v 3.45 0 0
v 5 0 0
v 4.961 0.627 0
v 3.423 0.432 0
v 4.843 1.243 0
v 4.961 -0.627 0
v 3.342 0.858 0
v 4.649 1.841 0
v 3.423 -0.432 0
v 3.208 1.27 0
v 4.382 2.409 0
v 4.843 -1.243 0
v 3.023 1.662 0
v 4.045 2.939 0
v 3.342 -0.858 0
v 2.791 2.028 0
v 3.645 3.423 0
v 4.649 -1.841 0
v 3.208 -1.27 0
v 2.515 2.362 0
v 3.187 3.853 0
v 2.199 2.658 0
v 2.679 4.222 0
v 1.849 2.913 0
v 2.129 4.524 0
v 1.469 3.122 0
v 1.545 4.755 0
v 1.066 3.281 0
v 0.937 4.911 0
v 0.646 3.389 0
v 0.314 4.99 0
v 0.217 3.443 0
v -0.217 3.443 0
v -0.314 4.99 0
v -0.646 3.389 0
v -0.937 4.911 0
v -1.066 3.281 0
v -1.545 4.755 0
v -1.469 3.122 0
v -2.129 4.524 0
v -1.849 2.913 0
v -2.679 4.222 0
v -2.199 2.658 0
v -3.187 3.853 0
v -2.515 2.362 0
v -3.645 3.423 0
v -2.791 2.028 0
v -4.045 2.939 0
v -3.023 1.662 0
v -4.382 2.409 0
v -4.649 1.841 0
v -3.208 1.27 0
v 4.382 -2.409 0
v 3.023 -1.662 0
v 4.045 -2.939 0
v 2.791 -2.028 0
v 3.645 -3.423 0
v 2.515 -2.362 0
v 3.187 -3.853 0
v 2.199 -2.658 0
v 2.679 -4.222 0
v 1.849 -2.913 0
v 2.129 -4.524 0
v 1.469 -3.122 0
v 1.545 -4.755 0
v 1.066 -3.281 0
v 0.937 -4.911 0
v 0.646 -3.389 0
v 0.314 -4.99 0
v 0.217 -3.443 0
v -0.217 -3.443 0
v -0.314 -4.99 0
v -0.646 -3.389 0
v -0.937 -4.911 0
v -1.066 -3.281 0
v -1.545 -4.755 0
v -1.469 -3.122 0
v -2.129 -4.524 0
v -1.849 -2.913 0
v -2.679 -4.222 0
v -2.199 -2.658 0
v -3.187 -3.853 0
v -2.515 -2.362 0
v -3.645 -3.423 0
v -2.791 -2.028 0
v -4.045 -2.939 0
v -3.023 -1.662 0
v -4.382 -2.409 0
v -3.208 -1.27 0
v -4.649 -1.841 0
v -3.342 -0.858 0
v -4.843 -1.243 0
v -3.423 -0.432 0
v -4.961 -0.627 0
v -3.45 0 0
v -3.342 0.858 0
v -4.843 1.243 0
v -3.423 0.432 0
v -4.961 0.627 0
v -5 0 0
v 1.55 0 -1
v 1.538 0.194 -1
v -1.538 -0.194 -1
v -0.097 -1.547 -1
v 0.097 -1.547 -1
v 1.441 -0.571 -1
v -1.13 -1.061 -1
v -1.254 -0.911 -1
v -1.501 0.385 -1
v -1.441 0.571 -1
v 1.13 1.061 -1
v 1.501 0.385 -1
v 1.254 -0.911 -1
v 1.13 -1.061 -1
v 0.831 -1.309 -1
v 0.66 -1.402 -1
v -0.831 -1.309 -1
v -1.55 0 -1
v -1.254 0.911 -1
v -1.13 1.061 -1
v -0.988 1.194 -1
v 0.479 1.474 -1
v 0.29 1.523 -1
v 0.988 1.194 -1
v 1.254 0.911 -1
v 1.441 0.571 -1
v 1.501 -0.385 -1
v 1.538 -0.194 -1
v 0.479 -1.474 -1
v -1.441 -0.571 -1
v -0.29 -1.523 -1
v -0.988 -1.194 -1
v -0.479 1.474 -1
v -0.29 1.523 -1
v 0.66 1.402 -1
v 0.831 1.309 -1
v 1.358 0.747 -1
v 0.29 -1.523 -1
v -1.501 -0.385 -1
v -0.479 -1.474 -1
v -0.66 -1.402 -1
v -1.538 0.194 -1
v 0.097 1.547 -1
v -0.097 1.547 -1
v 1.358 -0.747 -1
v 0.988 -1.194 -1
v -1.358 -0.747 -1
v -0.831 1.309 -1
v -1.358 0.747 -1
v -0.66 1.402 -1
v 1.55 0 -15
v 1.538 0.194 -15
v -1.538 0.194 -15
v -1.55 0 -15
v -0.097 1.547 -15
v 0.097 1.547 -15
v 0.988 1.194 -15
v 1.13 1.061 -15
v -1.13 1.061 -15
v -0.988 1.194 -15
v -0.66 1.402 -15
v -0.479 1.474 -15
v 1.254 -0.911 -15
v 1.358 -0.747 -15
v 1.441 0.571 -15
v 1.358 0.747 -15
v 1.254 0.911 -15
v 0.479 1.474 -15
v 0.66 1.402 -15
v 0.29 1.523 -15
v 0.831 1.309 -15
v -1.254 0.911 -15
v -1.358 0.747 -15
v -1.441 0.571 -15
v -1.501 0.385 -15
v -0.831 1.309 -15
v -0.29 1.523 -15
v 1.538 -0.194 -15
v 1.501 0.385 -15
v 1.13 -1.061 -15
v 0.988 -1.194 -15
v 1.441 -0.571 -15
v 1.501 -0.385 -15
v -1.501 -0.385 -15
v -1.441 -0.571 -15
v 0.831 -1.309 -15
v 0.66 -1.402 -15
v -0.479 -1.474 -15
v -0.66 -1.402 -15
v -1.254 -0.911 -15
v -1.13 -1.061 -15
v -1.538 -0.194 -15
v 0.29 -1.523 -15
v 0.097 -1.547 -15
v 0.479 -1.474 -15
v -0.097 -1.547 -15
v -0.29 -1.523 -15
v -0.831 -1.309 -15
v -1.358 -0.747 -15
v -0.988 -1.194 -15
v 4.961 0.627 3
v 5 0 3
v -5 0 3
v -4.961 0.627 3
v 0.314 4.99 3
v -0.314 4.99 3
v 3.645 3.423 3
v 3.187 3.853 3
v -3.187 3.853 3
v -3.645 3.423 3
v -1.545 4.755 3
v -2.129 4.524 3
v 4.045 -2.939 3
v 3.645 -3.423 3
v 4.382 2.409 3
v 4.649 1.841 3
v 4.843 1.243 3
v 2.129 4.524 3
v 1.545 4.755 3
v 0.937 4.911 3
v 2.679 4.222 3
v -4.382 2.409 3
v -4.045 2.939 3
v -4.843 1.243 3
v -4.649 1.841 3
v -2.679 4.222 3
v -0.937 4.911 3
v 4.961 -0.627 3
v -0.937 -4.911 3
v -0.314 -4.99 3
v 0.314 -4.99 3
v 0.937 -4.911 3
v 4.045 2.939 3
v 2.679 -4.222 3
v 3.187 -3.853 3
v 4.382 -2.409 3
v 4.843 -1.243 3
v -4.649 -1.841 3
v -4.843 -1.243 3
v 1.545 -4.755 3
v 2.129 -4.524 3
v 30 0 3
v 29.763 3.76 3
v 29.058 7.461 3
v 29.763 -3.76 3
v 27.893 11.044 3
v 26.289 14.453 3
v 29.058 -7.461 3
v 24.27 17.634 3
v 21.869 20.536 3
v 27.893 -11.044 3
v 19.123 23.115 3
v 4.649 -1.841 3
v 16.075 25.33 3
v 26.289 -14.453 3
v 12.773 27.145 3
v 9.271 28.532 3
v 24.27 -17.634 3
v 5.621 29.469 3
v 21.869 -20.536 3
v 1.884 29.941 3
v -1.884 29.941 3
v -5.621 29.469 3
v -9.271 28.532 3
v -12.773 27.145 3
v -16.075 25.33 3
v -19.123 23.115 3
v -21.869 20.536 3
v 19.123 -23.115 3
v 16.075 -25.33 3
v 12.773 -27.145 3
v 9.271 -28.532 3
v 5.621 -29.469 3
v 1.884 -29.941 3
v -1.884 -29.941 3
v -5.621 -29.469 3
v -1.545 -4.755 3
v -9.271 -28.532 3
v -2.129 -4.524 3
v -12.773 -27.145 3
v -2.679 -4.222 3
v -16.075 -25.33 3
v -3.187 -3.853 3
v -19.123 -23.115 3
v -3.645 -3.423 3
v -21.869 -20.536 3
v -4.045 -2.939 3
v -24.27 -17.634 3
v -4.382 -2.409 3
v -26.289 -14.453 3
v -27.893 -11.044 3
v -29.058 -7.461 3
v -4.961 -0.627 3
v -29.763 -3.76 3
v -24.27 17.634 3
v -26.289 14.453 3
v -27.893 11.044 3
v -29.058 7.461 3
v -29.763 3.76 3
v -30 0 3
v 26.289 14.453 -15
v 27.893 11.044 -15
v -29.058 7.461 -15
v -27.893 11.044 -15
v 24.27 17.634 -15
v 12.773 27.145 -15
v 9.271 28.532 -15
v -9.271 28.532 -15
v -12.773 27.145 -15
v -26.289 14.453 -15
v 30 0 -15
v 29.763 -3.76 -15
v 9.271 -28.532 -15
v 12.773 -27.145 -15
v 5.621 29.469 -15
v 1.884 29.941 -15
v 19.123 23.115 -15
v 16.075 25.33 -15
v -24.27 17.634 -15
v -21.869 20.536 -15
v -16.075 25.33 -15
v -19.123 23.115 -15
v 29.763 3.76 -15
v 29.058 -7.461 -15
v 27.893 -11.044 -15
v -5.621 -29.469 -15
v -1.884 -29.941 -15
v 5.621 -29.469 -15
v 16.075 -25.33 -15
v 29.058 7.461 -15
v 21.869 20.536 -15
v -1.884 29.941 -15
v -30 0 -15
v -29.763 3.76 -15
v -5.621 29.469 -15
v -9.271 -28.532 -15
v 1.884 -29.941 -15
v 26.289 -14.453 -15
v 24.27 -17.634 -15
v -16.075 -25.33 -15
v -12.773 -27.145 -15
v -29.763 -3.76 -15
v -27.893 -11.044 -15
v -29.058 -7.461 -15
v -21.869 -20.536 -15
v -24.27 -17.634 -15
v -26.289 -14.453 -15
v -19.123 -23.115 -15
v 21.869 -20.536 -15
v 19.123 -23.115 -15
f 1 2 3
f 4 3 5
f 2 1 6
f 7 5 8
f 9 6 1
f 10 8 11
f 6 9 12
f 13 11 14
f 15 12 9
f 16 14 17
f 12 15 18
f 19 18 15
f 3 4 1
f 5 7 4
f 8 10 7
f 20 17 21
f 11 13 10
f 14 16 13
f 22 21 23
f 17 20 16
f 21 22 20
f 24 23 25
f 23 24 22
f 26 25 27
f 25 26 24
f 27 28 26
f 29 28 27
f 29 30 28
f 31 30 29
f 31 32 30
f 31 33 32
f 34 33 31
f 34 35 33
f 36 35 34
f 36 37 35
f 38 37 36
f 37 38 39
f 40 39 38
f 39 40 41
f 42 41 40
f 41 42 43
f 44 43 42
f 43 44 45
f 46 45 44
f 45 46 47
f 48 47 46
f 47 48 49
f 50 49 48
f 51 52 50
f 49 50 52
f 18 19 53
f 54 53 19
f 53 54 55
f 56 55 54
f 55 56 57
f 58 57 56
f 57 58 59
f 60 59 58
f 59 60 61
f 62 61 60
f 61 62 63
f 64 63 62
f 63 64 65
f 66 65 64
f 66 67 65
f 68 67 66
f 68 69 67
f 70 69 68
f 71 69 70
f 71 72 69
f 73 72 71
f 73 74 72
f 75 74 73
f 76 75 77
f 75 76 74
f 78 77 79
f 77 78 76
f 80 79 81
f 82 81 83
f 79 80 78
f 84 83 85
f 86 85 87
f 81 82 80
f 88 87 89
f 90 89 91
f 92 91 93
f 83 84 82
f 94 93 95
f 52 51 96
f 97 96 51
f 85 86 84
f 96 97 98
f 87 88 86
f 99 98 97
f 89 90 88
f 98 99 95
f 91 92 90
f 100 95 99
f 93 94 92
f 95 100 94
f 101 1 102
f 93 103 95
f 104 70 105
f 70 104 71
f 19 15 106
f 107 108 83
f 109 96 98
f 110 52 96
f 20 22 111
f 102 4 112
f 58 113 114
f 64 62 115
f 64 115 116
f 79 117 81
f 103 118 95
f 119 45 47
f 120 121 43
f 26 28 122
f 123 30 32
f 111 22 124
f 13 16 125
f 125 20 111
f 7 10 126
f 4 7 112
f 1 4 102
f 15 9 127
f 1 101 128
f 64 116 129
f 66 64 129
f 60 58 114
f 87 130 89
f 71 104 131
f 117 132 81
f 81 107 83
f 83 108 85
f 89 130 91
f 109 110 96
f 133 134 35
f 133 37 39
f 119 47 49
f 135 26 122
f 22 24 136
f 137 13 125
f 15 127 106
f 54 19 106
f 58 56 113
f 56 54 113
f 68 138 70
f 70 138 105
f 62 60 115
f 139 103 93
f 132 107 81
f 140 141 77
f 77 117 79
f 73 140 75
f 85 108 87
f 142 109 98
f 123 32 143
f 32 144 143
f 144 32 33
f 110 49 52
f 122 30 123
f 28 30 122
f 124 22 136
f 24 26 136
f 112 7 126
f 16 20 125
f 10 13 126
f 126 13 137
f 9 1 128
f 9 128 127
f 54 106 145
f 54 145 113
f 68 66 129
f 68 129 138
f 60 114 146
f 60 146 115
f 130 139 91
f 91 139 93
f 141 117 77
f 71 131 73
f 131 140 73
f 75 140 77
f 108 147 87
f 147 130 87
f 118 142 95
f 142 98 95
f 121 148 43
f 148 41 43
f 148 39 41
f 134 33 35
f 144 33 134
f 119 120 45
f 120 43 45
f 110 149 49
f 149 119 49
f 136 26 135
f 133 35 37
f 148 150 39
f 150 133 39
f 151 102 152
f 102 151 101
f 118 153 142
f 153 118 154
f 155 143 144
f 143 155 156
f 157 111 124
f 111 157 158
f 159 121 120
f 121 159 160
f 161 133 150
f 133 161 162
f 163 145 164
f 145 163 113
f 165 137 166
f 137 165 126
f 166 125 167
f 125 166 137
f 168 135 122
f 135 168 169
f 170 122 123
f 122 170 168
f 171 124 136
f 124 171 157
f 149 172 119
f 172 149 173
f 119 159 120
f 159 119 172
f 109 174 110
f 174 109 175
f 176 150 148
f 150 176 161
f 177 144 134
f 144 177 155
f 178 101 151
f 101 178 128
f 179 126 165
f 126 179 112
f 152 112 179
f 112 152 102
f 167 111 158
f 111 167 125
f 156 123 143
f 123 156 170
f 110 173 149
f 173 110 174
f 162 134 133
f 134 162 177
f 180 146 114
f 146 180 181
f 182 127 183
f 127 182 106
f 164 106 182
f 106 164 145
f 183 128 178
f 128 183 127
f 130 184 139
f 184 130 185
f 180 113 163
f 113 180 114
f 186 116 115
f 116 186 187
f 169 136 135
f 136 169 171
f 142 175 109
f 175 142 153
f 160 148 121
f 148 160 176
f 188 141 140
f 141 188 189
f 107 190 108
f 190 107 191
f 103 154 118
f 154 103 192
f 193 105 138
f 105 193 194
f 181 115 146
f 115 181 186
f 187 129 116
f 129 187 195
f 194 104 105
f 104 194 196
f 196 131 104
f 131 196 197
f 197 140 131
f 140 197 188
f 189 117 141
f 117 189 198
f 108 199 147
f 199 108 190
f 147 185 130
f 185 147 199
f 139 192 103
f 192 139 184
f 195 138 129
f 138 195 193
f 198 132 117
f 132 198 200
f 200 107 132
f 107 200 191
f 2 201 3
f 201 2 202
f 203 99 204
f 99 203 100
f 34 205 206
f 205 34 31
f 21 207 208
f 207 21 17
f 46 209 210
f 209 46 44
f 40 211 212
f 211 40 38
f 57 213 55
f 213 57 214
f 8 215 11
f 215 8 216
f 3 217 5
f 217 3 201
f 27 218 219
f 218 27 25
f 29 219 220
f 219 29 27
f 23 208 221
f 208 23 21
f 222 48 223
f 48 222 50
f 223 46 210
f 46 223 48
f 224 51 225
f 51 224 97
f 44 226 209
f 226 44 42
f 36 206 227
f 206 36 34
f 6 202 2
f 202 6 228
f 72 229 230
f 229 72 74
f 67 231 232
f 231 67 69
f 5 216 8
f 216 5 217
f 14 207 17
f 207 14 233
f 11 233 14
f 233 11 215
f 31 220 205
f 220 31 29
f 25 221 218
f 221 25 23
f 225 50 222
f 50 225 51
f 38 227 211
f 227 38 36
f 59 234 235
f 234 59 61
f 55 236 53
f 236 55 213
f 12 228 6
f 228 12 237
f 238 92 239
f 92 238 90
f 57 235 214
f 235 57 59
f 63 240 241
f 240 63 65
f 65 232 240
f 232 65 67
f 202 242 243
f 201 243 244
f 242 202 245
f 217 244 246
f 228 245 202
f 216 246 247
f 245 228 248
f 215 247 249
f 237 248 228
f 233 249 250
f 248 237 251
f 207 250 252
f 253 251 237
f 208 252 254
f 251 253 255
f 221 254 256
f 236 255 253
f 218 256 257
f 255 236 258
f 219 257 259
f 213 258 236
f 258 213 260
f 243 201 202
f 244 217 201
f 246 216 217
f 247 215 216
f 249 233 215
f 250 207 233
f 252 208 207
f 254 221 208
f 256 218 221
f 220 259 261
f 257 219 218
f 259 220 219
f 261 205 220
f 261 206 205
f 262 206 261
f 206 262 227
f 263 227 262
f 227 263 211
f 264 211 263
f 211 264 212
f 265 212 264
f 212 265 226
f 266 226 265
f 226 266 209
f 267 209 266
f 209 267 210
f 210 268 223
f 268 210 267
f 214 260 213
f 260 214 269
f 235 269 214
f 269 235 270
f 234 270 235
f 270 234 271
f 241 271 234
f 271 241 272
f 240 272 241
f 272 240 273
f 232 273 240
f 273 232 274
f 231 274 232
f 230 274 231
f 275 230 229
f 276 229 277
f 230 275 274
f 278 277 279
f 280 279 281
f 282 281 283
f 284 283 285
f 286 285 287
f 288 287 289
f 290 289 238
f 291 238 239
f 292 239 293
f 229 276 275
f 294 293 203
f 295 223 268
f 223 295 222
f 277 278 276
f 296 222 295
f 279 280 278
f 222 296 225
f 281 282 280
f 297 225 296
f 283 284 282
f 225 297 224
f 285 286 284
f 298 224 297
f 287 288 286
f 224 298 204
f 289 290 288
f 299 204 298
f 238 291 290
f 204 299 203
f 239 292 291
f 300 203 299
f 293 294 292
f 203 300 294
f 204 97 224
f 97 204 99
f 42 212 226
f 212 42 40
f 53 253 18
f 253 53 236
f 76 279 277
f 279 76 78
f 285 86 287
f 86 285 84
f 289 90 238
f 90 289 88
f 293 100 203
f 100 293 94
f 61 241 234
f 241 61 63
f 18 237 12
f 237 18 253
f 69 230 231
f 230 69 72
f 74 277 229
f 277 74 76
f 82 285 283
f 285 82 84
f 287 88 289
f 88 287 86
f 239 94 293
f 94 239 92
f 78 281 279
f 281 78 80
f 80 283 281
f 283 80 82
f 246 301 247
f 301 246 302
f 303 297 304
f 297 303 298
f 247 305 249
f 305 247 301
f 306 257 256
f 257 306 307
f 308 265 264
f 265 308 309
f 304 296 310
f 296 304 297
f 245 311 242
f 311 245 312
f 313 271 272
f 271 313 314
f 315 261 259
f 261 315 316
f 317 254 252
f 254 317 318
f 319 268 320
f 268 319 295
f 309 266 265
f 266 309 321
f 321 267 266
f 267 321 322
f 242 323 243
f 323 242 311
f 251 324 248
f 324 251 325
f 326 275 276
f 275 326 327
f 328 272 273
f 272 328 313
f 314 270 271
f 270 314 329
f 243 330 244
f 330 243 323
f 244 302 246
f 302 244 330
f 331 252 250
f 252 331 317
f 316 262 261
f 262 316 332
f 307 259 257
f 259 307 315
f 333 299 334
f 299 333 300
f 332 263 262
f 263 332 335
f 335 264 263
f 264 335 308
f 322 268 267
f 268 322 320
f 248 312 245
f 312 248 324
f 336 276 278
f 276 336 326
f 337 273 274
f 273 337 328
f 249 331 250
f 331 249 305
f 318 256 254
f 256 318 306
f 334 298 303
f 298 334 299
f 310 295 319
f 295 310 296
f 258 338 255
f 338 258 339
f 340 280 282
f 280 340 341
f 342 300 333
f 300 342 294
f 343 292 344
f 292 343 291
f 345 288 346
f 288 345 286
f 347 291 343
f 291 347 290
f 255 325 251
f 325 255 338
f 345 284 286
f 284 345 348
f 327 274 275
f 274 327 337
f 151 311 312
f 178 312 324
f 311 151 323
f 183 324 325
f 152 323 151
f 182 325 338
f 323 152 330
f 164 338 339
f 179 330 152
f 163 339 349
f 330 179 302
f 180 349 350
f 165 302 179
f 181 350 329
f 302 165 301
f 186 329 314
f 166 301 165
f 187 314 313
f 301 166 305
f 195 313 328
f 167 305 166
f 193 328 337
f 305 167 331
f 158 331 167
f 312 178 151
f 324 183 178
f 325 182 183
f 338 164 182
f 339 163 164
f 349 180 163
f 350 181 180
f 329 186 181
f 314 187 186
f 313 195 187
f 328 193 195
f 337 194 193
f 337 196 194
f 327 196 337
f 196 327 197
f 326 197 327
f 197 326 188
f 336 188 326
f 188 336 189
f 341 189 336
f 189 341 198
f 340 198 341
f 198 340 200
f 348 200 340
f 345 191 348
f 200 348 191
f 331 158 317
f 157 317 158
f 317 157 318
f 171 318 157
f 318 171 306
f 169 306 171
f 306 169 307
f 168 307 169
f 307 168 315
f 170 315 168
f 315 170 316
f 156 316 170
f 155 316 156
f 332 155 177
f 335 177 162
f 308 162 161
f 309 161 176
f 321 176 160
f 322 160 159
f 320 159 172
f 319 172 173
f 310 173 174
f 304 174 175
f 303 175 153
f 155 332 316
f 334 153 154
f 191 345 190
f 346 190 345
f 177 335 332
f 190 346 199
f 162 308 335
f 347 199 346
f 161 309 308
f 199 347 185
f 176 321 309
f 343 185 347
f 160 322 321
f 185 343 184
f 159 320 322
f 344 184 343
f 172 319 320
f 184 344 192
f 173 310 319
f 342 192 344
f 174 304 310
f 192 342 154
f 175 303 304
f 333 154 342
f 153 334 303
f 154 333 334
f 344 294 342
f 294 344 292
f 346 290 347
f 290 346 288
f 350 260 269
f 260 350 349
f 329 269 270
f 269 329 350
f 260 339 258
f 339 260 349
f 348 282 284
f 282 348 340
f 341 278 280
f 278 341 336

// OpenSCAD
$fn = 50;

difference() {
	union() {
		translate(v = [0, 0, -15.0]) {
			cylinder(h = 18, r = 30.0);
		}
	}
	union() {
		translate(v = [0, 0, 0]) {
			rotate(a = [0, 0, 0]) {
				difference() {
					union() {
						translate(v = [0, 0, -18.0]) {
							cylinder(h = 18, r = 1.25);
						}
						translate(v = [0, 0, -1.0]) {
							cylinder(h = 1.0, r1 = 1.55, r2 = 3.45);
						}
						translate(v = [0, 0, -18.0]) {
							cylinder(h = 18, r = 1.55);
						}
						translate(v = [0, 0, -18.0]) {
							cylinder(h = 18, r = 1.25);
						}
					}
					union();
				}
			}
		}
		#cylinder(h = 3, r = 5.0);
	}
}
